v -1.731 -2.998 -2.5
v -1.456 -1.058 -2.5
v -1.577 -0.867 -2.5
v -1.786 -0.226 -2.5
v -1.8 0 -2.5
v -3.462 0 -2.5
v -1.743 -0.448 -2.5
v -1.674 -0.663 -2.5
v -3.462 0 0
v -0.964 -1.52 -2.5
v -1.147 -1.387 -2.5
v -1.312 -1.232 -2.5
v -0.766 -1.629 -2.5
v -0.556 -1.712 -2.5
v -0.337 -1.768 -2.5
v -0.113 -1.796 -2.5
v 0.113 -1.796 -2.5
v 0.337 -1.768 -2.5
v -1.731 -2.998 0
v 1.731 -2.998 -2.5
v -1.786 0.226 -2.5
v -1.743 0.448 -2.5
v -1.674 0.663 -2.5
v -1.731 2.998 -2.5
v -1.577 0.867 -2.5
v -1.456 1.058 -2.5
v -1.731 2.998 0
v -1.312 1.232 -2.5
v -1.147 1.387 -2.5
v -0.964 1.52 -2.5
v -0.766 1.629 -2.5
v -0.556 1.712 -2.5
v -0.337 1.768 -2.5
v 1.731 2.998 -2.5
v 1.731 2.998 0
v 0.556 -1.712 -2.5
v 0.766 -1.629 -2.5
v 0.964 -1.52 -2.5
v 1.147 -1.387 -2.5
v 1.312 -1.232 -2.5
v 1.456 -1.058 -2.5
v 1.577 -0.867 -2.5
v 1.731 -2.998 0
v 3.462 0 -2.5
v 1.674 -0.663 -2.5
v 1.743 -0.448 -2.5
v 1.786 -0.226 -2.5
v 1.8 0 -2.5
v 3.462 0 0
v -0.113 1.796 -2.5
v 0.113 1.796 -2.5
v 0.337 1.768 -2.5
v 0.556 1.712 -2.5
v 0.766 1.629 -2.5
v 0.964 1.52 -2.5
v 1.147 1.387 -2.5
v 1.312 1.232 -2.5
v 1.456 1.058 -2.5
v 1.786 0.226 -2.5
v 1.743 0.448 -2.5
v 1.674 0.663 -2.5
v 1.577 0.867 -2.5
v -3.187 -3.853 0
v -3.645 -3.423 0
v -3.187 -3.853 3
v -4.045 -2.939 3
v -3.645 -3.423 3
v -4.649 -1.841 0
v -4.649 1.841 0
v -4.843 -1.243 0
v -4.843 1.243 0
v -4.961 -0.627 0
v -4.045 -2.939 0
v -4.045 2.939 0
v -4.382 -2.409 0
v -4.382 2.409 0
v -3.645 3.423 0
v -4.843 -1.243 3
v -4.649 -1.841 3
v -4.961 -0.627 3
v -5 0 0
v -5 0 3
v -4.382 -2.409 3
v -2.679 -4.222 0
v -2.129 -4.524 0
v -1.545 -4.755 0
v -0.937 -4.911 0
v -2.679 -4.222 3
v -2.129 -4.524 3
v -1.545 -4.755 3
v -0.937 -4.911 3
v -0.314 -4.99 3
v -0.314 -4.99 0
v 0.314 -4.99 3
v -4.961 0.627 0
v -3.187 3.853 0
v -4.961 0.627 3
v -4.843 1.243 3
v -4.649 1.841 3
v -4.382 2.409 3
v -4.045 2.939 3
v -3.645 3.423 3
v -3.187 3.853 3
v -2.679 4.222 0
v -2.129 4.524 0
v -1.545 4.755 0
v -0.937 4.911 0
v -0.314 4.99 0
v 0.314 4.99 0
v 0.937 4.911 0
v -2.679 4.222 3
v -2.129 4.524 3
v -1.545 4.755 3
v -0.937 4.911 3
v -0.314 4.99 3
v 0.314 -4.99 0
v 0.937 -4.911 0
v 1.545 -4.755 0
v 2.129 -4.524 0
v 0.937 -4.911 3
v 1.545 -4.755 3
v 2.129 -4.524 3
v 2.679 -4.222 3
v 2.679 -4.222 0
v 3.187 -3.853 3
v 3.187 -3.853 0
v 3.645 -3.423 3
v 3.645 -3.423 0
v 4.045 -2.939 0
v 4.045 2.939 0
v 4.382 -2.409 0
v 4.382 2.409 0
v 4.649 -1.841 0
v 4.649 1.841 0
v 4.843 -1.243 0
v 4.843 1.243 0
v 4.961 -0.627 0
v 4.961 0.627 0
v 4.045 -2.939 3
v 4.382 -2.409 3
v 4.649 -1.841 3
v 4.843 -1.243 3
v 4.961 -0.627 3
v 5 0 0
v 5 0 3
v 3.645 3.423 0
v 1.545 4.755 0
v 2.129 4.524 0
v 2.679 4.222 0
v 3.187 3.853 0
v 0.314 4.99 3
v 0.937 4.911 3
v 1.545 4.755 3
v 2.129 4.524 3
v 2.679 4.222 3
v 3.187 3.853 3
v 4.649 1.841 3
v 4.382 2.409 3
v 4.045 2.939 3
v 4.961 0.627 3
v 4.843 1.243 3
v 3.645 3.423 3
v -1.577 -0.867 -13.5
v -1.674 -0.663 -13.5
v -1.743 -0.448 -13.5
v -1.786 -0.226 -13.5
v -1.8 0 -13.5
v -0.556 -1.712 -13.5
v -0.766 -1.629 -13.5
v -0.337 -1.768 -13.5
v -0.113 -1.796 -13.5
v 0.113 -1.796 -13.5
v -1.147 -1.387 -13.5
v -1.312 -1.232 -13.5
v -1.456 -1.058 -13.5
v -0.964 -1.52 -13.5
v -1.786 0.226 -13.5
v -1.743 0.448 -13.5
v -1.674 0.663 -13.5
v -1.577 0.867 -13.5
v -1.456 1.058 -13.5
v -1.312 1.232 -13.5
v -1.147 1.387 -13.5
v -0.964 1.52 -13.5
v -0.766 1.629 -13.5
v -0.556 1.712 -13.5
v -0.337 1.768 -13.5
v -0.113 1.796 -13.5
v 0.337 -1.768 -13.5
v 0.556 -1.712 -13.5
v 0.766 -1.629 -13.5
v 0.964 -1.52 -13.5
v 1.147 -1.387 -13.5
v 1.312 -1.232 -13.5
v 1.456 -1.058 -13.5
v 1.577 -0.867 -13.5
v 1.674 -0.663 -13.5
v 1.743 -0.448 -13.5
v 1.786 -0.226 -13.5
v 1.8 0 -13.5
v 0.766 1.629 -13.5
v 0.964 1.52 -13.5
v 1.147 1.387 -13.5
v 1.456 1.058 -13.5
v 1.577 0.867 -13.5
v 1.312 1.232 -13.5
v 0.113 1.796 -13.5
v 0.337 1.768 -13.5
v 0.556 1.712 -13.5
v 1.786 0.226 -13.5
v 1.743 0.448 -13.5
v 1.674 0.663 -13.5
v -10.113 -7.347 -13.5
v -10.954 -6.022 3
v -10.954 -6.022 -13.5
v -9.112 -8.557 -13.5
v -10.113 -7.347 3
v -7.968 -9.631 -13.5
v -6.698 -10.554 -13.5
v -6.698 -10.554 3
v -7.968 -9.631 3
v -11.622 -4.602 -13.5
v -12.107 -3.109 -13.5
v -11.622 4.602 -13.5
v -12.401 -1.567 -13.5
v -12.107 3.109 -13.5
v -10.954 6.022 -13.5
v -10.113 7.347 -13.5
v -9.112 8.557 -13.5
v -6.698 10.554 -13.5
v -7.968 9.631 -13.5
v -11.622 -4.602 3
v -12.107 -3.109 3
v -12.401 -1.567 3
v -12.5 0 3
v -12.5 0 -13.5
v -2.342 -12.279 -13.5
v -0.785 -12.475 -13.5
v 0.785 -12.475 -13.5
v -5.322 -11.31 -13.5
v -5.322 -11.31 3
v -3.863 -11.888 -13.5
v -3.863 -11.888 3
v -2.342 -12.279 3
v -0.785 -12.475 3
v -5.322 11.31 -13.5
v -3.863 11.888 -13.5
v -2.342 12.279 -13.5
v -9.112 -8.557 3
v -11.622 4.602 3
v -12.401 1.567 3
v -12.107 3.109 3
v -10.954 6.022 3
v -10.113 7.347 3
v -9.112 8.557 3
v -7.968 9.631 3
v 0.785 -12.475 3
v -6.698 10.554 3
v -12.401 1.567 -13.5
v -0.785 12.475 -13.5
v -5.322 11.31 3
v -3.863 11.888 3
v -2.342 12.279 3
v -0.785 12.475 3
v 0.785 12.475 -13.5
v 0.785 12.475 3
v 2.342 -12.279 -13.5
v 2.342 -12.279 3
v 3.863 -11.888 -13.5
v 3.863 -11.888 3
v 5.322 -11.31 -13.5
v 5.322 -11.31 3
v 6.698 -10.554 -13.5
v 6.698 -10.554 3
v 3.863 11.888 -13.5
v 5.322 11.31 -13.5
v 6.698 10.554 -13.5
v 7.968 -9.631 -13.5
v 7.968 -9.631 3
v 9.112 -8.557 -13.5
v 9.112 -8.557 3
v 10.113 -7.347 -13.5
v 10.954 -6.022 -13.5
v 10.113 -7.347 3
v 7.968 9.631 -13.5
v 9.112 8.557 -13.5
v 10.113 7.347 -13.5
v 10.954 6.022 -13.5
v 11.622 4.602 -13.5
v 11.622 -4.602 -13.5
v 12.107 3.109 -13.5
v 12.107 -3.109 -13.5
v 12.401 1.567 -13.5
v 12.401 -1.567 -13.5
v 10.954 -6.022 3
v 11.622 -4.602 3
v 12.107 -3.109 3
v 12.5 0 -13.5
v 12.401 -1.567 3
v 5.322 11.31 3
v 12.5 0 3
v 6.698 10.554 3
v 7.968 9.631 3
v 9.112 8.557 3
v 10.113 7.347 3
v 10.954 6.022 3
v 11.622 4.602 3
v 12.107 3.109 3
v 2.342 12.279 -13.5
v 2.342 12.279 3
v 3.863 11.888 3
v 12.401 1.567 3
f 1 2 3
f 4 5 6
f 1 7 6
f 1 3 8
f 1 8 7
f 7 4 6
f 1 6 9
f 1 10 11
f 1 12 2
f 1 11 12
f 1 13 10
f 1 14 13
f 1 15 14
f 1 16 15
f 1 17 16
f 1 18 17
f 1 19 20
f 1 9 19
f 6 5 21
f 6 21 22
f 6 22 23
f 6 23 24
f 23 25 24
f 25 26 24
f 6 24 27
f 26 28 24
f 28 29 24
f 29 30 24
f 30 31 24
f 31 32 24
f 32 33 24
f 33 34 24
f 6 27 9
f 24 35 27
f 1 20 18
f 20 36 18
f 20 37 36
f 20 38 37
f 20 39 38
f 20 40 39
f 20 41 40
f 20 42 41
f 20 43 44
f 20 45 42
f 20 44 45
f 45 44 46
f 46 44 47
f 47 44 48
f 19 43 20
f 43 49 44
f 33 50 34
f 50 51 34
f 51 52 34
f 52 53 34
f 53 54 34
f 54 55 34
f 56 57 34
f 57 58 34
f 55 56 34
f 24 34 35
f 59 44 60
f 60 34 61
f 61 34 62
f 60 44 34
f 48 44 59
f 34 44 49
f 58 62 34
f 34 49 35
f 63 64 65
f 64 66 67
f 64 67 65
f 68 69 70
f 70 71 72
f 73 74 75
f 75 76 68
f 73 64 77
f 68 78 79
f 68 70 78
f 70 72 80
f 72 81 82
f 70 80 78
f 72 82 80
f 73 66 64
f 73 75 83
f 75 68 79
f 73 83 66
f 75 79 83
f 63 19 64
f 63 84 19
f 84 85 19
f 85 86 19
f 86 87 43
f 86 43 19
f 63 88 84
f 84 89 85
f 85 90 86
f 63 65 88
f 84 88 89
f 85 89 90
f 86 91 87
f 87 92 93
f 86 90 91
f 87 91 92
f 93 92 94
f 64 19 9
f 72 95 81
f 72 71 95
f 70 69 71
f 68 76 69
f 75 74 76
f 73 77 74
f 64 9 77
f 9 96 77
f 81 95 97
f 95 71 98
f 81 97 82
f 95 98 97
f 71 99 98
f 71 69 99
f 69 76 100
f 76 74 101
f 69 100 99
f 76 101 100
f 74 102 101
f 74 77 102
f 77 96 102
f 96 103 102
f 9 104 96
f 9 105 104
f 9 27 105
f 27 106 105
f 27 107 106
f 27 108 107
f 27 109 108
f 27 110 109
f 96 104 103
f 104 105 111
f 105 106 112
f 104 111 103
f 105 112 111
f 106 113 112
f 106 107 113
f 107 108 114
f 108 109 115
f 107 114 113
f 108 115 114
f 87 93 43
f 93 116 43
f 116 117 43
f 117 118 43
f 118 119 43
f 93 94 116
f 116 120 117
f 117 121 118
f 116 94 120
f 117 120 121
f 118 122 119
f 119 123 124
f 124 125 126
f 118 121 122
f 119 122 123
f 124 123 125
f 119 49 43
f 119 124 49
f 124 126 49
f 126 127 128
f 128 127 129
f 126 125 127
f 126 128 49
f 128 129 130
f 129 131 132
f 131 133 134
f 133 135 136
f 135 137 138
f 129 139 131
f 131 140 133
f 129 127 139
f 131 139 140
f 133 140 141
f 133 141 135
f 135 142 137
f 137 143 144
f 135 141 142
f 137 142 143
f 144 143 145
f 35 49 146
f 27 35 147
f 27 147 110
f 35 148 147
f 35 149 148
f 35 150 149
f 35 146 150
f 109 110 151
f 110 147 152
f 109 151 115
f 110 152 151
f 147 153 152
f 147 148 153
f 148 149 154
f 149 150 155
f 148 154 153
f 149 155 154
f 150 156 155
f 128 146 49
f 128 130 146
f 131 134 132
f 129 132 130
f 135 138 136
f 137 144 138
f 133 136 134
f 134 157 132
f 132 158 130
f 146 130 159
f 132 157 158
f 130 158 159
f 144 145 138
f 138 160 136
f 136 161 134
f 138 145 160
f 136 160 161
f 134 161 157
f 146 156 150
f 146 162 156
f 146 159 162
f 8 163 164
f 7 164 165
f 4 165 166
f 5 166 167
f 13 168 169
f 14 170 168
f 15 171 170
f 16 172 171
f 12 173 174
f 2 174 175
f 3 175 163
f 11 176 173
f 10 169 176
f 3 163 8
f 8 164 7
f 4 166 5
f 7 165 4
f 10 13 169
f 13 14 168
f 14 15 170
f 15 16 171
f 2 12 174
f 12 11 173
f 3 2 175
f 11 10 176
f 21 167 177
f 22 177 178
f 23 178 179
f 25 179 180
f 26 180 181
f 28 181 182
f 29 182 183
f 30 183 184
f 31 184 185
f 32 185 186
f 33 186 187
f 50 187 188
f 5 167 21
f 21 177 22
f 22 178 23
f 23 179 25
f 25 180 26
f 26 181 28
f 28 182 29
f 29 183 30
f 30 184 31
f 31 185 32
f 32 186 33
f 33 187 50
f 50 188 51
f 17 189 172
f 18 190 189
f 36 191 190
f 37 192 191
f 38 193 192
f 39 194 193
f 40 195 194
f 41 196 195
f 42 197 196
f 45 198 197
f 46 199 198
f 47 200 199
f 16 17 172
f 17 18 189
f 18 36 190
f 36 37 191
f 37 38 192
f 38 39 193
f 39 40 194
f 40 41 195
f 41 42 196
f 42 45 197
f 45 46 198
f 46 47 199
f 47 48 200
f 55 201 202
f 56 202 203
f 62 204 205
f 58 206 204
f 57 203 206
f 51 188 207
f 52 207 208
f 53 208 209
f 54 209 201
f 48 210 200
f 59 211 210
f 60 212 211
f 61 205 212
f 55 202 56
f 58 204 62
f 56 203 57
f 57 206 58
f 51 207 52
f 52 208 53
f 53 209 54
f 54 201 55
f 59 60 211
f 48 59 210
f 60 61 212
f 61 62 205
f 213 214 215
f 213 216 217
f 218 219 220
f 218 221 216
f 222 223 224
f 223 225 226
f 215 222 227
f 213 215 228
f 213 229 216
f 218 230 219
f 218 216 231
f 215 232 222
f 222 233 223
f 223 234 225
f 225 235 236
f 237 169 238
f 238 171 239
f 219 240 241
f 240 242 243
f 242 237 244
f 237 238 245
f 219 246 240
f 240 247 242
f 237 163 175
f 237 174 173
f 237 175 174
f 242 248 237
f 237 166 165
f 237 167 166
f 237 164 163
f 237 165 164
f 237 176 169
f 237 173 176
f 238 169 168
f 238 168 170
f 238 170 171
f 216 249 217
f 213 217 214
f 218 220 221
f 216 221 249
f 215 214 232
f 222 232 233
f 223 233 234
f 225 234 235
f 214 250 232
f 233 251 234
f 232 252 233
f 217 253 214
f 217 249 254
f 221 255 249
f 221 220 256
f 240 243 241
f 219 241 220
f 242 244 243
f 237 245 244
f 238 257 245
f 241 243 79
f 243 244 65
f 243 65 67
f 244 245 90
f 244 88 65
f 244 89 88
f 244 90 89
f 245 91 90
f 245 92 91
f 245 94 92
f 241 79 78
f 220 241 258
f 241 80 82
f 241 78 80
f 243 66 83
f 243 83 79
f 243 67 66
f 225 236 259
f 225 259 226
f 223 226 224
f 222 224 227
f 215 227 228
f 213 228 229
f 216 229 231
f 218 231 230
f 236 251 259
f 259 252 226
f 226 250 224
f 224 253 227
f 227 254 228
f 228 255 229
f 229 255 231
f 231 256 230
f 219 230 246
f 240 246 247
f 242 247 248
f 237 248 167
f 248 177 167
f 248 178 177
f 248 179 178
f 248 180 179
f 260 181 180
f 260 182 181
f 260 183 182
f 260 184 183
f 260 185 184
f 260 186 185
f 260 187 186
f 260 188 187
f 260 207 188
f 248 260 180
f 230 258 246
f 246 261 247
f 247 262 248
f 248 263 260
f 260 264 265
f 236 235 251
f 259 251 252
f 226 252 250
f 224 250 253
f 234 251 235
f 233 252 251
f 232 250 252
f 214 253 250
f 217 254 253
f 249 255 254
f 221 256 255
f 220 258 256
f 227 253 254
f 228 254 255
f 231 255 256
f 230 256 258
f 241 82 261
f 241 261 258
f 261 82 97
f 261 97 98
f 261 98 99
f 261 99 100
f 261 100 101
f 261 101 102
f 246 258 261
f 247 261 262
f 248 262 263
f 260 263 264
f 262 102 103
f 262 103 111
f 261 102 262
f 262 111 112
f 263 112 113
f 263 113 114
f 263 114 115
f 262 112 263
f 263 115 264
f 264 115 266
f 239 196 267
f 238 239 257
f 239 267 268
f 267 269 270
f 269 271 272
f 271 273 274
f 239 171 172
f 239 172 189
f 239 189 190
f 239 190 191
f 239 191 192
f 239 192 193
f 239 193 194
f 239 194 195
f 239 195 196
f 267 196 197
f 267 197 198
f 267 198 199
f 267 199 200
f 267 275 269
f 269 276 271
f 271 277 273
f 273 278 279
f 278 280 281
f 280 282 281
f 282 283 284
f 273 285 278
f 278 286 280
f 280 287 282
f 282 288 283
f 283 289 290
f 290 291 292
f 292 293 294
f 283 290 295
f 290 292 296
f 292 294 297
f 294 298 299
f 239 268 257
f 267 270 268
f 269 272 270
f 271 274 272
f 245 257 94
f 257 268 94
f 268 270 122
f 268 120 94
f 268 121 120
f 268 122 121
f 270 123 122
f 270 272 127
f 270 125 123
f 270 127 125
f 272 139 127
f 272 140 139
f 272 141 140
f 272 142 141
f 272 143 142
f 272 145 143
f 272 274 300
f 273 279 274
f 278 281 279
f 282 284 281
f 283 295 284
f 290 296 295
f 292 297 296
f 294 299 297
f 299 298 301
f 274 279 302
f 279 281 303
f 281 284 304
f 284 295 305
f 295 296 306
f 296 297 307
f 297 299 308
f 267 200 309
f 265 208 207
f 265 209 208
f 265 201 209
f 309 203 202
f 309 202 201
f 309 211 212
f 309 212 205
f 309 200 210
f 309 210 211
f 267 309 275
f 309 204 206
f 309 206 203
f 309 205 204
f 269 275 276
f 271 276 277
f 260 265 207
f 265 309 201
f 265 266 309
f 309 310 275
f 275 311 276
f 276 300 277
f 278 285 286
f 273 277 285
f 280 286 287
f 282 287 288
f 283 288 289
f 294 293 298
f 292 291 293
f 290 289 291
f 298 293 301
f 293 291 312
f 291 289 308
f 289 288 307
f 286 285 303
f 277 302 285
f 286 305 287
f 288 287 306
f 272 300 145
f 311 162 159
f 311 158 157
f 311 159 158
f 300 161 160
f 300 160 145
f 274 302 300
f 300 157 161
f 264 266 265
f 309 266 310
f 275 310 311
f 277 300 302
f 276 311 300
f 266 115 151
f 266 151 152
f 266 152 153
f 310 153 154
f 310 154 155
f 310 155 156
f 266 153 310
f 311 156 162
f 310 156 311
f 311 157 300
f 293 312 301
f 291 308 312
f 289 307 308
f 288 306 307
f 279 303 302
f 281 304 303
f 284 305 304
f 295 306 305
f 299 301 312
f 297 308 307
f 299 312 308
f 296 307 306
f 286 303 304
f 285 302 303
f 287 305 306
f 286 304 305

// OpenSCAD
$fn = 50;

difference() {
	union() {
		translate(v = [0, 0, -13.5]) {
			cylinder(h = 16.5, r = 12.5);
		}
	}
	union() {
		translate(v = [0, 0, 0]) {
			rotate(a = [0, 0, 0]) {
				difference() {
					union() {
						translate(v = [0, 0, -2.5]) {
							linear_extrude(height = 2.5) {
								polygon(points = [[3.4619999999999997, 0.0], [1.7310000000000003, 2.9981799479017264], [-1.7309999999999992, 2.9981799479017264], [-3.4619999999999997, 4.2397272186481365e-16], [-1.7310000000000014, -2.998179947901726], [1.7309999999999977, -2.9981799479017277]]);
							}
						}
					}
					union();
				}
			}
		}
		#cylinder(h = 3, r = 5.0);
		#translate(v = [0, 0, -100.0]) {
			cylinder(h = 200, r = 1.8);
		}
	}
}
